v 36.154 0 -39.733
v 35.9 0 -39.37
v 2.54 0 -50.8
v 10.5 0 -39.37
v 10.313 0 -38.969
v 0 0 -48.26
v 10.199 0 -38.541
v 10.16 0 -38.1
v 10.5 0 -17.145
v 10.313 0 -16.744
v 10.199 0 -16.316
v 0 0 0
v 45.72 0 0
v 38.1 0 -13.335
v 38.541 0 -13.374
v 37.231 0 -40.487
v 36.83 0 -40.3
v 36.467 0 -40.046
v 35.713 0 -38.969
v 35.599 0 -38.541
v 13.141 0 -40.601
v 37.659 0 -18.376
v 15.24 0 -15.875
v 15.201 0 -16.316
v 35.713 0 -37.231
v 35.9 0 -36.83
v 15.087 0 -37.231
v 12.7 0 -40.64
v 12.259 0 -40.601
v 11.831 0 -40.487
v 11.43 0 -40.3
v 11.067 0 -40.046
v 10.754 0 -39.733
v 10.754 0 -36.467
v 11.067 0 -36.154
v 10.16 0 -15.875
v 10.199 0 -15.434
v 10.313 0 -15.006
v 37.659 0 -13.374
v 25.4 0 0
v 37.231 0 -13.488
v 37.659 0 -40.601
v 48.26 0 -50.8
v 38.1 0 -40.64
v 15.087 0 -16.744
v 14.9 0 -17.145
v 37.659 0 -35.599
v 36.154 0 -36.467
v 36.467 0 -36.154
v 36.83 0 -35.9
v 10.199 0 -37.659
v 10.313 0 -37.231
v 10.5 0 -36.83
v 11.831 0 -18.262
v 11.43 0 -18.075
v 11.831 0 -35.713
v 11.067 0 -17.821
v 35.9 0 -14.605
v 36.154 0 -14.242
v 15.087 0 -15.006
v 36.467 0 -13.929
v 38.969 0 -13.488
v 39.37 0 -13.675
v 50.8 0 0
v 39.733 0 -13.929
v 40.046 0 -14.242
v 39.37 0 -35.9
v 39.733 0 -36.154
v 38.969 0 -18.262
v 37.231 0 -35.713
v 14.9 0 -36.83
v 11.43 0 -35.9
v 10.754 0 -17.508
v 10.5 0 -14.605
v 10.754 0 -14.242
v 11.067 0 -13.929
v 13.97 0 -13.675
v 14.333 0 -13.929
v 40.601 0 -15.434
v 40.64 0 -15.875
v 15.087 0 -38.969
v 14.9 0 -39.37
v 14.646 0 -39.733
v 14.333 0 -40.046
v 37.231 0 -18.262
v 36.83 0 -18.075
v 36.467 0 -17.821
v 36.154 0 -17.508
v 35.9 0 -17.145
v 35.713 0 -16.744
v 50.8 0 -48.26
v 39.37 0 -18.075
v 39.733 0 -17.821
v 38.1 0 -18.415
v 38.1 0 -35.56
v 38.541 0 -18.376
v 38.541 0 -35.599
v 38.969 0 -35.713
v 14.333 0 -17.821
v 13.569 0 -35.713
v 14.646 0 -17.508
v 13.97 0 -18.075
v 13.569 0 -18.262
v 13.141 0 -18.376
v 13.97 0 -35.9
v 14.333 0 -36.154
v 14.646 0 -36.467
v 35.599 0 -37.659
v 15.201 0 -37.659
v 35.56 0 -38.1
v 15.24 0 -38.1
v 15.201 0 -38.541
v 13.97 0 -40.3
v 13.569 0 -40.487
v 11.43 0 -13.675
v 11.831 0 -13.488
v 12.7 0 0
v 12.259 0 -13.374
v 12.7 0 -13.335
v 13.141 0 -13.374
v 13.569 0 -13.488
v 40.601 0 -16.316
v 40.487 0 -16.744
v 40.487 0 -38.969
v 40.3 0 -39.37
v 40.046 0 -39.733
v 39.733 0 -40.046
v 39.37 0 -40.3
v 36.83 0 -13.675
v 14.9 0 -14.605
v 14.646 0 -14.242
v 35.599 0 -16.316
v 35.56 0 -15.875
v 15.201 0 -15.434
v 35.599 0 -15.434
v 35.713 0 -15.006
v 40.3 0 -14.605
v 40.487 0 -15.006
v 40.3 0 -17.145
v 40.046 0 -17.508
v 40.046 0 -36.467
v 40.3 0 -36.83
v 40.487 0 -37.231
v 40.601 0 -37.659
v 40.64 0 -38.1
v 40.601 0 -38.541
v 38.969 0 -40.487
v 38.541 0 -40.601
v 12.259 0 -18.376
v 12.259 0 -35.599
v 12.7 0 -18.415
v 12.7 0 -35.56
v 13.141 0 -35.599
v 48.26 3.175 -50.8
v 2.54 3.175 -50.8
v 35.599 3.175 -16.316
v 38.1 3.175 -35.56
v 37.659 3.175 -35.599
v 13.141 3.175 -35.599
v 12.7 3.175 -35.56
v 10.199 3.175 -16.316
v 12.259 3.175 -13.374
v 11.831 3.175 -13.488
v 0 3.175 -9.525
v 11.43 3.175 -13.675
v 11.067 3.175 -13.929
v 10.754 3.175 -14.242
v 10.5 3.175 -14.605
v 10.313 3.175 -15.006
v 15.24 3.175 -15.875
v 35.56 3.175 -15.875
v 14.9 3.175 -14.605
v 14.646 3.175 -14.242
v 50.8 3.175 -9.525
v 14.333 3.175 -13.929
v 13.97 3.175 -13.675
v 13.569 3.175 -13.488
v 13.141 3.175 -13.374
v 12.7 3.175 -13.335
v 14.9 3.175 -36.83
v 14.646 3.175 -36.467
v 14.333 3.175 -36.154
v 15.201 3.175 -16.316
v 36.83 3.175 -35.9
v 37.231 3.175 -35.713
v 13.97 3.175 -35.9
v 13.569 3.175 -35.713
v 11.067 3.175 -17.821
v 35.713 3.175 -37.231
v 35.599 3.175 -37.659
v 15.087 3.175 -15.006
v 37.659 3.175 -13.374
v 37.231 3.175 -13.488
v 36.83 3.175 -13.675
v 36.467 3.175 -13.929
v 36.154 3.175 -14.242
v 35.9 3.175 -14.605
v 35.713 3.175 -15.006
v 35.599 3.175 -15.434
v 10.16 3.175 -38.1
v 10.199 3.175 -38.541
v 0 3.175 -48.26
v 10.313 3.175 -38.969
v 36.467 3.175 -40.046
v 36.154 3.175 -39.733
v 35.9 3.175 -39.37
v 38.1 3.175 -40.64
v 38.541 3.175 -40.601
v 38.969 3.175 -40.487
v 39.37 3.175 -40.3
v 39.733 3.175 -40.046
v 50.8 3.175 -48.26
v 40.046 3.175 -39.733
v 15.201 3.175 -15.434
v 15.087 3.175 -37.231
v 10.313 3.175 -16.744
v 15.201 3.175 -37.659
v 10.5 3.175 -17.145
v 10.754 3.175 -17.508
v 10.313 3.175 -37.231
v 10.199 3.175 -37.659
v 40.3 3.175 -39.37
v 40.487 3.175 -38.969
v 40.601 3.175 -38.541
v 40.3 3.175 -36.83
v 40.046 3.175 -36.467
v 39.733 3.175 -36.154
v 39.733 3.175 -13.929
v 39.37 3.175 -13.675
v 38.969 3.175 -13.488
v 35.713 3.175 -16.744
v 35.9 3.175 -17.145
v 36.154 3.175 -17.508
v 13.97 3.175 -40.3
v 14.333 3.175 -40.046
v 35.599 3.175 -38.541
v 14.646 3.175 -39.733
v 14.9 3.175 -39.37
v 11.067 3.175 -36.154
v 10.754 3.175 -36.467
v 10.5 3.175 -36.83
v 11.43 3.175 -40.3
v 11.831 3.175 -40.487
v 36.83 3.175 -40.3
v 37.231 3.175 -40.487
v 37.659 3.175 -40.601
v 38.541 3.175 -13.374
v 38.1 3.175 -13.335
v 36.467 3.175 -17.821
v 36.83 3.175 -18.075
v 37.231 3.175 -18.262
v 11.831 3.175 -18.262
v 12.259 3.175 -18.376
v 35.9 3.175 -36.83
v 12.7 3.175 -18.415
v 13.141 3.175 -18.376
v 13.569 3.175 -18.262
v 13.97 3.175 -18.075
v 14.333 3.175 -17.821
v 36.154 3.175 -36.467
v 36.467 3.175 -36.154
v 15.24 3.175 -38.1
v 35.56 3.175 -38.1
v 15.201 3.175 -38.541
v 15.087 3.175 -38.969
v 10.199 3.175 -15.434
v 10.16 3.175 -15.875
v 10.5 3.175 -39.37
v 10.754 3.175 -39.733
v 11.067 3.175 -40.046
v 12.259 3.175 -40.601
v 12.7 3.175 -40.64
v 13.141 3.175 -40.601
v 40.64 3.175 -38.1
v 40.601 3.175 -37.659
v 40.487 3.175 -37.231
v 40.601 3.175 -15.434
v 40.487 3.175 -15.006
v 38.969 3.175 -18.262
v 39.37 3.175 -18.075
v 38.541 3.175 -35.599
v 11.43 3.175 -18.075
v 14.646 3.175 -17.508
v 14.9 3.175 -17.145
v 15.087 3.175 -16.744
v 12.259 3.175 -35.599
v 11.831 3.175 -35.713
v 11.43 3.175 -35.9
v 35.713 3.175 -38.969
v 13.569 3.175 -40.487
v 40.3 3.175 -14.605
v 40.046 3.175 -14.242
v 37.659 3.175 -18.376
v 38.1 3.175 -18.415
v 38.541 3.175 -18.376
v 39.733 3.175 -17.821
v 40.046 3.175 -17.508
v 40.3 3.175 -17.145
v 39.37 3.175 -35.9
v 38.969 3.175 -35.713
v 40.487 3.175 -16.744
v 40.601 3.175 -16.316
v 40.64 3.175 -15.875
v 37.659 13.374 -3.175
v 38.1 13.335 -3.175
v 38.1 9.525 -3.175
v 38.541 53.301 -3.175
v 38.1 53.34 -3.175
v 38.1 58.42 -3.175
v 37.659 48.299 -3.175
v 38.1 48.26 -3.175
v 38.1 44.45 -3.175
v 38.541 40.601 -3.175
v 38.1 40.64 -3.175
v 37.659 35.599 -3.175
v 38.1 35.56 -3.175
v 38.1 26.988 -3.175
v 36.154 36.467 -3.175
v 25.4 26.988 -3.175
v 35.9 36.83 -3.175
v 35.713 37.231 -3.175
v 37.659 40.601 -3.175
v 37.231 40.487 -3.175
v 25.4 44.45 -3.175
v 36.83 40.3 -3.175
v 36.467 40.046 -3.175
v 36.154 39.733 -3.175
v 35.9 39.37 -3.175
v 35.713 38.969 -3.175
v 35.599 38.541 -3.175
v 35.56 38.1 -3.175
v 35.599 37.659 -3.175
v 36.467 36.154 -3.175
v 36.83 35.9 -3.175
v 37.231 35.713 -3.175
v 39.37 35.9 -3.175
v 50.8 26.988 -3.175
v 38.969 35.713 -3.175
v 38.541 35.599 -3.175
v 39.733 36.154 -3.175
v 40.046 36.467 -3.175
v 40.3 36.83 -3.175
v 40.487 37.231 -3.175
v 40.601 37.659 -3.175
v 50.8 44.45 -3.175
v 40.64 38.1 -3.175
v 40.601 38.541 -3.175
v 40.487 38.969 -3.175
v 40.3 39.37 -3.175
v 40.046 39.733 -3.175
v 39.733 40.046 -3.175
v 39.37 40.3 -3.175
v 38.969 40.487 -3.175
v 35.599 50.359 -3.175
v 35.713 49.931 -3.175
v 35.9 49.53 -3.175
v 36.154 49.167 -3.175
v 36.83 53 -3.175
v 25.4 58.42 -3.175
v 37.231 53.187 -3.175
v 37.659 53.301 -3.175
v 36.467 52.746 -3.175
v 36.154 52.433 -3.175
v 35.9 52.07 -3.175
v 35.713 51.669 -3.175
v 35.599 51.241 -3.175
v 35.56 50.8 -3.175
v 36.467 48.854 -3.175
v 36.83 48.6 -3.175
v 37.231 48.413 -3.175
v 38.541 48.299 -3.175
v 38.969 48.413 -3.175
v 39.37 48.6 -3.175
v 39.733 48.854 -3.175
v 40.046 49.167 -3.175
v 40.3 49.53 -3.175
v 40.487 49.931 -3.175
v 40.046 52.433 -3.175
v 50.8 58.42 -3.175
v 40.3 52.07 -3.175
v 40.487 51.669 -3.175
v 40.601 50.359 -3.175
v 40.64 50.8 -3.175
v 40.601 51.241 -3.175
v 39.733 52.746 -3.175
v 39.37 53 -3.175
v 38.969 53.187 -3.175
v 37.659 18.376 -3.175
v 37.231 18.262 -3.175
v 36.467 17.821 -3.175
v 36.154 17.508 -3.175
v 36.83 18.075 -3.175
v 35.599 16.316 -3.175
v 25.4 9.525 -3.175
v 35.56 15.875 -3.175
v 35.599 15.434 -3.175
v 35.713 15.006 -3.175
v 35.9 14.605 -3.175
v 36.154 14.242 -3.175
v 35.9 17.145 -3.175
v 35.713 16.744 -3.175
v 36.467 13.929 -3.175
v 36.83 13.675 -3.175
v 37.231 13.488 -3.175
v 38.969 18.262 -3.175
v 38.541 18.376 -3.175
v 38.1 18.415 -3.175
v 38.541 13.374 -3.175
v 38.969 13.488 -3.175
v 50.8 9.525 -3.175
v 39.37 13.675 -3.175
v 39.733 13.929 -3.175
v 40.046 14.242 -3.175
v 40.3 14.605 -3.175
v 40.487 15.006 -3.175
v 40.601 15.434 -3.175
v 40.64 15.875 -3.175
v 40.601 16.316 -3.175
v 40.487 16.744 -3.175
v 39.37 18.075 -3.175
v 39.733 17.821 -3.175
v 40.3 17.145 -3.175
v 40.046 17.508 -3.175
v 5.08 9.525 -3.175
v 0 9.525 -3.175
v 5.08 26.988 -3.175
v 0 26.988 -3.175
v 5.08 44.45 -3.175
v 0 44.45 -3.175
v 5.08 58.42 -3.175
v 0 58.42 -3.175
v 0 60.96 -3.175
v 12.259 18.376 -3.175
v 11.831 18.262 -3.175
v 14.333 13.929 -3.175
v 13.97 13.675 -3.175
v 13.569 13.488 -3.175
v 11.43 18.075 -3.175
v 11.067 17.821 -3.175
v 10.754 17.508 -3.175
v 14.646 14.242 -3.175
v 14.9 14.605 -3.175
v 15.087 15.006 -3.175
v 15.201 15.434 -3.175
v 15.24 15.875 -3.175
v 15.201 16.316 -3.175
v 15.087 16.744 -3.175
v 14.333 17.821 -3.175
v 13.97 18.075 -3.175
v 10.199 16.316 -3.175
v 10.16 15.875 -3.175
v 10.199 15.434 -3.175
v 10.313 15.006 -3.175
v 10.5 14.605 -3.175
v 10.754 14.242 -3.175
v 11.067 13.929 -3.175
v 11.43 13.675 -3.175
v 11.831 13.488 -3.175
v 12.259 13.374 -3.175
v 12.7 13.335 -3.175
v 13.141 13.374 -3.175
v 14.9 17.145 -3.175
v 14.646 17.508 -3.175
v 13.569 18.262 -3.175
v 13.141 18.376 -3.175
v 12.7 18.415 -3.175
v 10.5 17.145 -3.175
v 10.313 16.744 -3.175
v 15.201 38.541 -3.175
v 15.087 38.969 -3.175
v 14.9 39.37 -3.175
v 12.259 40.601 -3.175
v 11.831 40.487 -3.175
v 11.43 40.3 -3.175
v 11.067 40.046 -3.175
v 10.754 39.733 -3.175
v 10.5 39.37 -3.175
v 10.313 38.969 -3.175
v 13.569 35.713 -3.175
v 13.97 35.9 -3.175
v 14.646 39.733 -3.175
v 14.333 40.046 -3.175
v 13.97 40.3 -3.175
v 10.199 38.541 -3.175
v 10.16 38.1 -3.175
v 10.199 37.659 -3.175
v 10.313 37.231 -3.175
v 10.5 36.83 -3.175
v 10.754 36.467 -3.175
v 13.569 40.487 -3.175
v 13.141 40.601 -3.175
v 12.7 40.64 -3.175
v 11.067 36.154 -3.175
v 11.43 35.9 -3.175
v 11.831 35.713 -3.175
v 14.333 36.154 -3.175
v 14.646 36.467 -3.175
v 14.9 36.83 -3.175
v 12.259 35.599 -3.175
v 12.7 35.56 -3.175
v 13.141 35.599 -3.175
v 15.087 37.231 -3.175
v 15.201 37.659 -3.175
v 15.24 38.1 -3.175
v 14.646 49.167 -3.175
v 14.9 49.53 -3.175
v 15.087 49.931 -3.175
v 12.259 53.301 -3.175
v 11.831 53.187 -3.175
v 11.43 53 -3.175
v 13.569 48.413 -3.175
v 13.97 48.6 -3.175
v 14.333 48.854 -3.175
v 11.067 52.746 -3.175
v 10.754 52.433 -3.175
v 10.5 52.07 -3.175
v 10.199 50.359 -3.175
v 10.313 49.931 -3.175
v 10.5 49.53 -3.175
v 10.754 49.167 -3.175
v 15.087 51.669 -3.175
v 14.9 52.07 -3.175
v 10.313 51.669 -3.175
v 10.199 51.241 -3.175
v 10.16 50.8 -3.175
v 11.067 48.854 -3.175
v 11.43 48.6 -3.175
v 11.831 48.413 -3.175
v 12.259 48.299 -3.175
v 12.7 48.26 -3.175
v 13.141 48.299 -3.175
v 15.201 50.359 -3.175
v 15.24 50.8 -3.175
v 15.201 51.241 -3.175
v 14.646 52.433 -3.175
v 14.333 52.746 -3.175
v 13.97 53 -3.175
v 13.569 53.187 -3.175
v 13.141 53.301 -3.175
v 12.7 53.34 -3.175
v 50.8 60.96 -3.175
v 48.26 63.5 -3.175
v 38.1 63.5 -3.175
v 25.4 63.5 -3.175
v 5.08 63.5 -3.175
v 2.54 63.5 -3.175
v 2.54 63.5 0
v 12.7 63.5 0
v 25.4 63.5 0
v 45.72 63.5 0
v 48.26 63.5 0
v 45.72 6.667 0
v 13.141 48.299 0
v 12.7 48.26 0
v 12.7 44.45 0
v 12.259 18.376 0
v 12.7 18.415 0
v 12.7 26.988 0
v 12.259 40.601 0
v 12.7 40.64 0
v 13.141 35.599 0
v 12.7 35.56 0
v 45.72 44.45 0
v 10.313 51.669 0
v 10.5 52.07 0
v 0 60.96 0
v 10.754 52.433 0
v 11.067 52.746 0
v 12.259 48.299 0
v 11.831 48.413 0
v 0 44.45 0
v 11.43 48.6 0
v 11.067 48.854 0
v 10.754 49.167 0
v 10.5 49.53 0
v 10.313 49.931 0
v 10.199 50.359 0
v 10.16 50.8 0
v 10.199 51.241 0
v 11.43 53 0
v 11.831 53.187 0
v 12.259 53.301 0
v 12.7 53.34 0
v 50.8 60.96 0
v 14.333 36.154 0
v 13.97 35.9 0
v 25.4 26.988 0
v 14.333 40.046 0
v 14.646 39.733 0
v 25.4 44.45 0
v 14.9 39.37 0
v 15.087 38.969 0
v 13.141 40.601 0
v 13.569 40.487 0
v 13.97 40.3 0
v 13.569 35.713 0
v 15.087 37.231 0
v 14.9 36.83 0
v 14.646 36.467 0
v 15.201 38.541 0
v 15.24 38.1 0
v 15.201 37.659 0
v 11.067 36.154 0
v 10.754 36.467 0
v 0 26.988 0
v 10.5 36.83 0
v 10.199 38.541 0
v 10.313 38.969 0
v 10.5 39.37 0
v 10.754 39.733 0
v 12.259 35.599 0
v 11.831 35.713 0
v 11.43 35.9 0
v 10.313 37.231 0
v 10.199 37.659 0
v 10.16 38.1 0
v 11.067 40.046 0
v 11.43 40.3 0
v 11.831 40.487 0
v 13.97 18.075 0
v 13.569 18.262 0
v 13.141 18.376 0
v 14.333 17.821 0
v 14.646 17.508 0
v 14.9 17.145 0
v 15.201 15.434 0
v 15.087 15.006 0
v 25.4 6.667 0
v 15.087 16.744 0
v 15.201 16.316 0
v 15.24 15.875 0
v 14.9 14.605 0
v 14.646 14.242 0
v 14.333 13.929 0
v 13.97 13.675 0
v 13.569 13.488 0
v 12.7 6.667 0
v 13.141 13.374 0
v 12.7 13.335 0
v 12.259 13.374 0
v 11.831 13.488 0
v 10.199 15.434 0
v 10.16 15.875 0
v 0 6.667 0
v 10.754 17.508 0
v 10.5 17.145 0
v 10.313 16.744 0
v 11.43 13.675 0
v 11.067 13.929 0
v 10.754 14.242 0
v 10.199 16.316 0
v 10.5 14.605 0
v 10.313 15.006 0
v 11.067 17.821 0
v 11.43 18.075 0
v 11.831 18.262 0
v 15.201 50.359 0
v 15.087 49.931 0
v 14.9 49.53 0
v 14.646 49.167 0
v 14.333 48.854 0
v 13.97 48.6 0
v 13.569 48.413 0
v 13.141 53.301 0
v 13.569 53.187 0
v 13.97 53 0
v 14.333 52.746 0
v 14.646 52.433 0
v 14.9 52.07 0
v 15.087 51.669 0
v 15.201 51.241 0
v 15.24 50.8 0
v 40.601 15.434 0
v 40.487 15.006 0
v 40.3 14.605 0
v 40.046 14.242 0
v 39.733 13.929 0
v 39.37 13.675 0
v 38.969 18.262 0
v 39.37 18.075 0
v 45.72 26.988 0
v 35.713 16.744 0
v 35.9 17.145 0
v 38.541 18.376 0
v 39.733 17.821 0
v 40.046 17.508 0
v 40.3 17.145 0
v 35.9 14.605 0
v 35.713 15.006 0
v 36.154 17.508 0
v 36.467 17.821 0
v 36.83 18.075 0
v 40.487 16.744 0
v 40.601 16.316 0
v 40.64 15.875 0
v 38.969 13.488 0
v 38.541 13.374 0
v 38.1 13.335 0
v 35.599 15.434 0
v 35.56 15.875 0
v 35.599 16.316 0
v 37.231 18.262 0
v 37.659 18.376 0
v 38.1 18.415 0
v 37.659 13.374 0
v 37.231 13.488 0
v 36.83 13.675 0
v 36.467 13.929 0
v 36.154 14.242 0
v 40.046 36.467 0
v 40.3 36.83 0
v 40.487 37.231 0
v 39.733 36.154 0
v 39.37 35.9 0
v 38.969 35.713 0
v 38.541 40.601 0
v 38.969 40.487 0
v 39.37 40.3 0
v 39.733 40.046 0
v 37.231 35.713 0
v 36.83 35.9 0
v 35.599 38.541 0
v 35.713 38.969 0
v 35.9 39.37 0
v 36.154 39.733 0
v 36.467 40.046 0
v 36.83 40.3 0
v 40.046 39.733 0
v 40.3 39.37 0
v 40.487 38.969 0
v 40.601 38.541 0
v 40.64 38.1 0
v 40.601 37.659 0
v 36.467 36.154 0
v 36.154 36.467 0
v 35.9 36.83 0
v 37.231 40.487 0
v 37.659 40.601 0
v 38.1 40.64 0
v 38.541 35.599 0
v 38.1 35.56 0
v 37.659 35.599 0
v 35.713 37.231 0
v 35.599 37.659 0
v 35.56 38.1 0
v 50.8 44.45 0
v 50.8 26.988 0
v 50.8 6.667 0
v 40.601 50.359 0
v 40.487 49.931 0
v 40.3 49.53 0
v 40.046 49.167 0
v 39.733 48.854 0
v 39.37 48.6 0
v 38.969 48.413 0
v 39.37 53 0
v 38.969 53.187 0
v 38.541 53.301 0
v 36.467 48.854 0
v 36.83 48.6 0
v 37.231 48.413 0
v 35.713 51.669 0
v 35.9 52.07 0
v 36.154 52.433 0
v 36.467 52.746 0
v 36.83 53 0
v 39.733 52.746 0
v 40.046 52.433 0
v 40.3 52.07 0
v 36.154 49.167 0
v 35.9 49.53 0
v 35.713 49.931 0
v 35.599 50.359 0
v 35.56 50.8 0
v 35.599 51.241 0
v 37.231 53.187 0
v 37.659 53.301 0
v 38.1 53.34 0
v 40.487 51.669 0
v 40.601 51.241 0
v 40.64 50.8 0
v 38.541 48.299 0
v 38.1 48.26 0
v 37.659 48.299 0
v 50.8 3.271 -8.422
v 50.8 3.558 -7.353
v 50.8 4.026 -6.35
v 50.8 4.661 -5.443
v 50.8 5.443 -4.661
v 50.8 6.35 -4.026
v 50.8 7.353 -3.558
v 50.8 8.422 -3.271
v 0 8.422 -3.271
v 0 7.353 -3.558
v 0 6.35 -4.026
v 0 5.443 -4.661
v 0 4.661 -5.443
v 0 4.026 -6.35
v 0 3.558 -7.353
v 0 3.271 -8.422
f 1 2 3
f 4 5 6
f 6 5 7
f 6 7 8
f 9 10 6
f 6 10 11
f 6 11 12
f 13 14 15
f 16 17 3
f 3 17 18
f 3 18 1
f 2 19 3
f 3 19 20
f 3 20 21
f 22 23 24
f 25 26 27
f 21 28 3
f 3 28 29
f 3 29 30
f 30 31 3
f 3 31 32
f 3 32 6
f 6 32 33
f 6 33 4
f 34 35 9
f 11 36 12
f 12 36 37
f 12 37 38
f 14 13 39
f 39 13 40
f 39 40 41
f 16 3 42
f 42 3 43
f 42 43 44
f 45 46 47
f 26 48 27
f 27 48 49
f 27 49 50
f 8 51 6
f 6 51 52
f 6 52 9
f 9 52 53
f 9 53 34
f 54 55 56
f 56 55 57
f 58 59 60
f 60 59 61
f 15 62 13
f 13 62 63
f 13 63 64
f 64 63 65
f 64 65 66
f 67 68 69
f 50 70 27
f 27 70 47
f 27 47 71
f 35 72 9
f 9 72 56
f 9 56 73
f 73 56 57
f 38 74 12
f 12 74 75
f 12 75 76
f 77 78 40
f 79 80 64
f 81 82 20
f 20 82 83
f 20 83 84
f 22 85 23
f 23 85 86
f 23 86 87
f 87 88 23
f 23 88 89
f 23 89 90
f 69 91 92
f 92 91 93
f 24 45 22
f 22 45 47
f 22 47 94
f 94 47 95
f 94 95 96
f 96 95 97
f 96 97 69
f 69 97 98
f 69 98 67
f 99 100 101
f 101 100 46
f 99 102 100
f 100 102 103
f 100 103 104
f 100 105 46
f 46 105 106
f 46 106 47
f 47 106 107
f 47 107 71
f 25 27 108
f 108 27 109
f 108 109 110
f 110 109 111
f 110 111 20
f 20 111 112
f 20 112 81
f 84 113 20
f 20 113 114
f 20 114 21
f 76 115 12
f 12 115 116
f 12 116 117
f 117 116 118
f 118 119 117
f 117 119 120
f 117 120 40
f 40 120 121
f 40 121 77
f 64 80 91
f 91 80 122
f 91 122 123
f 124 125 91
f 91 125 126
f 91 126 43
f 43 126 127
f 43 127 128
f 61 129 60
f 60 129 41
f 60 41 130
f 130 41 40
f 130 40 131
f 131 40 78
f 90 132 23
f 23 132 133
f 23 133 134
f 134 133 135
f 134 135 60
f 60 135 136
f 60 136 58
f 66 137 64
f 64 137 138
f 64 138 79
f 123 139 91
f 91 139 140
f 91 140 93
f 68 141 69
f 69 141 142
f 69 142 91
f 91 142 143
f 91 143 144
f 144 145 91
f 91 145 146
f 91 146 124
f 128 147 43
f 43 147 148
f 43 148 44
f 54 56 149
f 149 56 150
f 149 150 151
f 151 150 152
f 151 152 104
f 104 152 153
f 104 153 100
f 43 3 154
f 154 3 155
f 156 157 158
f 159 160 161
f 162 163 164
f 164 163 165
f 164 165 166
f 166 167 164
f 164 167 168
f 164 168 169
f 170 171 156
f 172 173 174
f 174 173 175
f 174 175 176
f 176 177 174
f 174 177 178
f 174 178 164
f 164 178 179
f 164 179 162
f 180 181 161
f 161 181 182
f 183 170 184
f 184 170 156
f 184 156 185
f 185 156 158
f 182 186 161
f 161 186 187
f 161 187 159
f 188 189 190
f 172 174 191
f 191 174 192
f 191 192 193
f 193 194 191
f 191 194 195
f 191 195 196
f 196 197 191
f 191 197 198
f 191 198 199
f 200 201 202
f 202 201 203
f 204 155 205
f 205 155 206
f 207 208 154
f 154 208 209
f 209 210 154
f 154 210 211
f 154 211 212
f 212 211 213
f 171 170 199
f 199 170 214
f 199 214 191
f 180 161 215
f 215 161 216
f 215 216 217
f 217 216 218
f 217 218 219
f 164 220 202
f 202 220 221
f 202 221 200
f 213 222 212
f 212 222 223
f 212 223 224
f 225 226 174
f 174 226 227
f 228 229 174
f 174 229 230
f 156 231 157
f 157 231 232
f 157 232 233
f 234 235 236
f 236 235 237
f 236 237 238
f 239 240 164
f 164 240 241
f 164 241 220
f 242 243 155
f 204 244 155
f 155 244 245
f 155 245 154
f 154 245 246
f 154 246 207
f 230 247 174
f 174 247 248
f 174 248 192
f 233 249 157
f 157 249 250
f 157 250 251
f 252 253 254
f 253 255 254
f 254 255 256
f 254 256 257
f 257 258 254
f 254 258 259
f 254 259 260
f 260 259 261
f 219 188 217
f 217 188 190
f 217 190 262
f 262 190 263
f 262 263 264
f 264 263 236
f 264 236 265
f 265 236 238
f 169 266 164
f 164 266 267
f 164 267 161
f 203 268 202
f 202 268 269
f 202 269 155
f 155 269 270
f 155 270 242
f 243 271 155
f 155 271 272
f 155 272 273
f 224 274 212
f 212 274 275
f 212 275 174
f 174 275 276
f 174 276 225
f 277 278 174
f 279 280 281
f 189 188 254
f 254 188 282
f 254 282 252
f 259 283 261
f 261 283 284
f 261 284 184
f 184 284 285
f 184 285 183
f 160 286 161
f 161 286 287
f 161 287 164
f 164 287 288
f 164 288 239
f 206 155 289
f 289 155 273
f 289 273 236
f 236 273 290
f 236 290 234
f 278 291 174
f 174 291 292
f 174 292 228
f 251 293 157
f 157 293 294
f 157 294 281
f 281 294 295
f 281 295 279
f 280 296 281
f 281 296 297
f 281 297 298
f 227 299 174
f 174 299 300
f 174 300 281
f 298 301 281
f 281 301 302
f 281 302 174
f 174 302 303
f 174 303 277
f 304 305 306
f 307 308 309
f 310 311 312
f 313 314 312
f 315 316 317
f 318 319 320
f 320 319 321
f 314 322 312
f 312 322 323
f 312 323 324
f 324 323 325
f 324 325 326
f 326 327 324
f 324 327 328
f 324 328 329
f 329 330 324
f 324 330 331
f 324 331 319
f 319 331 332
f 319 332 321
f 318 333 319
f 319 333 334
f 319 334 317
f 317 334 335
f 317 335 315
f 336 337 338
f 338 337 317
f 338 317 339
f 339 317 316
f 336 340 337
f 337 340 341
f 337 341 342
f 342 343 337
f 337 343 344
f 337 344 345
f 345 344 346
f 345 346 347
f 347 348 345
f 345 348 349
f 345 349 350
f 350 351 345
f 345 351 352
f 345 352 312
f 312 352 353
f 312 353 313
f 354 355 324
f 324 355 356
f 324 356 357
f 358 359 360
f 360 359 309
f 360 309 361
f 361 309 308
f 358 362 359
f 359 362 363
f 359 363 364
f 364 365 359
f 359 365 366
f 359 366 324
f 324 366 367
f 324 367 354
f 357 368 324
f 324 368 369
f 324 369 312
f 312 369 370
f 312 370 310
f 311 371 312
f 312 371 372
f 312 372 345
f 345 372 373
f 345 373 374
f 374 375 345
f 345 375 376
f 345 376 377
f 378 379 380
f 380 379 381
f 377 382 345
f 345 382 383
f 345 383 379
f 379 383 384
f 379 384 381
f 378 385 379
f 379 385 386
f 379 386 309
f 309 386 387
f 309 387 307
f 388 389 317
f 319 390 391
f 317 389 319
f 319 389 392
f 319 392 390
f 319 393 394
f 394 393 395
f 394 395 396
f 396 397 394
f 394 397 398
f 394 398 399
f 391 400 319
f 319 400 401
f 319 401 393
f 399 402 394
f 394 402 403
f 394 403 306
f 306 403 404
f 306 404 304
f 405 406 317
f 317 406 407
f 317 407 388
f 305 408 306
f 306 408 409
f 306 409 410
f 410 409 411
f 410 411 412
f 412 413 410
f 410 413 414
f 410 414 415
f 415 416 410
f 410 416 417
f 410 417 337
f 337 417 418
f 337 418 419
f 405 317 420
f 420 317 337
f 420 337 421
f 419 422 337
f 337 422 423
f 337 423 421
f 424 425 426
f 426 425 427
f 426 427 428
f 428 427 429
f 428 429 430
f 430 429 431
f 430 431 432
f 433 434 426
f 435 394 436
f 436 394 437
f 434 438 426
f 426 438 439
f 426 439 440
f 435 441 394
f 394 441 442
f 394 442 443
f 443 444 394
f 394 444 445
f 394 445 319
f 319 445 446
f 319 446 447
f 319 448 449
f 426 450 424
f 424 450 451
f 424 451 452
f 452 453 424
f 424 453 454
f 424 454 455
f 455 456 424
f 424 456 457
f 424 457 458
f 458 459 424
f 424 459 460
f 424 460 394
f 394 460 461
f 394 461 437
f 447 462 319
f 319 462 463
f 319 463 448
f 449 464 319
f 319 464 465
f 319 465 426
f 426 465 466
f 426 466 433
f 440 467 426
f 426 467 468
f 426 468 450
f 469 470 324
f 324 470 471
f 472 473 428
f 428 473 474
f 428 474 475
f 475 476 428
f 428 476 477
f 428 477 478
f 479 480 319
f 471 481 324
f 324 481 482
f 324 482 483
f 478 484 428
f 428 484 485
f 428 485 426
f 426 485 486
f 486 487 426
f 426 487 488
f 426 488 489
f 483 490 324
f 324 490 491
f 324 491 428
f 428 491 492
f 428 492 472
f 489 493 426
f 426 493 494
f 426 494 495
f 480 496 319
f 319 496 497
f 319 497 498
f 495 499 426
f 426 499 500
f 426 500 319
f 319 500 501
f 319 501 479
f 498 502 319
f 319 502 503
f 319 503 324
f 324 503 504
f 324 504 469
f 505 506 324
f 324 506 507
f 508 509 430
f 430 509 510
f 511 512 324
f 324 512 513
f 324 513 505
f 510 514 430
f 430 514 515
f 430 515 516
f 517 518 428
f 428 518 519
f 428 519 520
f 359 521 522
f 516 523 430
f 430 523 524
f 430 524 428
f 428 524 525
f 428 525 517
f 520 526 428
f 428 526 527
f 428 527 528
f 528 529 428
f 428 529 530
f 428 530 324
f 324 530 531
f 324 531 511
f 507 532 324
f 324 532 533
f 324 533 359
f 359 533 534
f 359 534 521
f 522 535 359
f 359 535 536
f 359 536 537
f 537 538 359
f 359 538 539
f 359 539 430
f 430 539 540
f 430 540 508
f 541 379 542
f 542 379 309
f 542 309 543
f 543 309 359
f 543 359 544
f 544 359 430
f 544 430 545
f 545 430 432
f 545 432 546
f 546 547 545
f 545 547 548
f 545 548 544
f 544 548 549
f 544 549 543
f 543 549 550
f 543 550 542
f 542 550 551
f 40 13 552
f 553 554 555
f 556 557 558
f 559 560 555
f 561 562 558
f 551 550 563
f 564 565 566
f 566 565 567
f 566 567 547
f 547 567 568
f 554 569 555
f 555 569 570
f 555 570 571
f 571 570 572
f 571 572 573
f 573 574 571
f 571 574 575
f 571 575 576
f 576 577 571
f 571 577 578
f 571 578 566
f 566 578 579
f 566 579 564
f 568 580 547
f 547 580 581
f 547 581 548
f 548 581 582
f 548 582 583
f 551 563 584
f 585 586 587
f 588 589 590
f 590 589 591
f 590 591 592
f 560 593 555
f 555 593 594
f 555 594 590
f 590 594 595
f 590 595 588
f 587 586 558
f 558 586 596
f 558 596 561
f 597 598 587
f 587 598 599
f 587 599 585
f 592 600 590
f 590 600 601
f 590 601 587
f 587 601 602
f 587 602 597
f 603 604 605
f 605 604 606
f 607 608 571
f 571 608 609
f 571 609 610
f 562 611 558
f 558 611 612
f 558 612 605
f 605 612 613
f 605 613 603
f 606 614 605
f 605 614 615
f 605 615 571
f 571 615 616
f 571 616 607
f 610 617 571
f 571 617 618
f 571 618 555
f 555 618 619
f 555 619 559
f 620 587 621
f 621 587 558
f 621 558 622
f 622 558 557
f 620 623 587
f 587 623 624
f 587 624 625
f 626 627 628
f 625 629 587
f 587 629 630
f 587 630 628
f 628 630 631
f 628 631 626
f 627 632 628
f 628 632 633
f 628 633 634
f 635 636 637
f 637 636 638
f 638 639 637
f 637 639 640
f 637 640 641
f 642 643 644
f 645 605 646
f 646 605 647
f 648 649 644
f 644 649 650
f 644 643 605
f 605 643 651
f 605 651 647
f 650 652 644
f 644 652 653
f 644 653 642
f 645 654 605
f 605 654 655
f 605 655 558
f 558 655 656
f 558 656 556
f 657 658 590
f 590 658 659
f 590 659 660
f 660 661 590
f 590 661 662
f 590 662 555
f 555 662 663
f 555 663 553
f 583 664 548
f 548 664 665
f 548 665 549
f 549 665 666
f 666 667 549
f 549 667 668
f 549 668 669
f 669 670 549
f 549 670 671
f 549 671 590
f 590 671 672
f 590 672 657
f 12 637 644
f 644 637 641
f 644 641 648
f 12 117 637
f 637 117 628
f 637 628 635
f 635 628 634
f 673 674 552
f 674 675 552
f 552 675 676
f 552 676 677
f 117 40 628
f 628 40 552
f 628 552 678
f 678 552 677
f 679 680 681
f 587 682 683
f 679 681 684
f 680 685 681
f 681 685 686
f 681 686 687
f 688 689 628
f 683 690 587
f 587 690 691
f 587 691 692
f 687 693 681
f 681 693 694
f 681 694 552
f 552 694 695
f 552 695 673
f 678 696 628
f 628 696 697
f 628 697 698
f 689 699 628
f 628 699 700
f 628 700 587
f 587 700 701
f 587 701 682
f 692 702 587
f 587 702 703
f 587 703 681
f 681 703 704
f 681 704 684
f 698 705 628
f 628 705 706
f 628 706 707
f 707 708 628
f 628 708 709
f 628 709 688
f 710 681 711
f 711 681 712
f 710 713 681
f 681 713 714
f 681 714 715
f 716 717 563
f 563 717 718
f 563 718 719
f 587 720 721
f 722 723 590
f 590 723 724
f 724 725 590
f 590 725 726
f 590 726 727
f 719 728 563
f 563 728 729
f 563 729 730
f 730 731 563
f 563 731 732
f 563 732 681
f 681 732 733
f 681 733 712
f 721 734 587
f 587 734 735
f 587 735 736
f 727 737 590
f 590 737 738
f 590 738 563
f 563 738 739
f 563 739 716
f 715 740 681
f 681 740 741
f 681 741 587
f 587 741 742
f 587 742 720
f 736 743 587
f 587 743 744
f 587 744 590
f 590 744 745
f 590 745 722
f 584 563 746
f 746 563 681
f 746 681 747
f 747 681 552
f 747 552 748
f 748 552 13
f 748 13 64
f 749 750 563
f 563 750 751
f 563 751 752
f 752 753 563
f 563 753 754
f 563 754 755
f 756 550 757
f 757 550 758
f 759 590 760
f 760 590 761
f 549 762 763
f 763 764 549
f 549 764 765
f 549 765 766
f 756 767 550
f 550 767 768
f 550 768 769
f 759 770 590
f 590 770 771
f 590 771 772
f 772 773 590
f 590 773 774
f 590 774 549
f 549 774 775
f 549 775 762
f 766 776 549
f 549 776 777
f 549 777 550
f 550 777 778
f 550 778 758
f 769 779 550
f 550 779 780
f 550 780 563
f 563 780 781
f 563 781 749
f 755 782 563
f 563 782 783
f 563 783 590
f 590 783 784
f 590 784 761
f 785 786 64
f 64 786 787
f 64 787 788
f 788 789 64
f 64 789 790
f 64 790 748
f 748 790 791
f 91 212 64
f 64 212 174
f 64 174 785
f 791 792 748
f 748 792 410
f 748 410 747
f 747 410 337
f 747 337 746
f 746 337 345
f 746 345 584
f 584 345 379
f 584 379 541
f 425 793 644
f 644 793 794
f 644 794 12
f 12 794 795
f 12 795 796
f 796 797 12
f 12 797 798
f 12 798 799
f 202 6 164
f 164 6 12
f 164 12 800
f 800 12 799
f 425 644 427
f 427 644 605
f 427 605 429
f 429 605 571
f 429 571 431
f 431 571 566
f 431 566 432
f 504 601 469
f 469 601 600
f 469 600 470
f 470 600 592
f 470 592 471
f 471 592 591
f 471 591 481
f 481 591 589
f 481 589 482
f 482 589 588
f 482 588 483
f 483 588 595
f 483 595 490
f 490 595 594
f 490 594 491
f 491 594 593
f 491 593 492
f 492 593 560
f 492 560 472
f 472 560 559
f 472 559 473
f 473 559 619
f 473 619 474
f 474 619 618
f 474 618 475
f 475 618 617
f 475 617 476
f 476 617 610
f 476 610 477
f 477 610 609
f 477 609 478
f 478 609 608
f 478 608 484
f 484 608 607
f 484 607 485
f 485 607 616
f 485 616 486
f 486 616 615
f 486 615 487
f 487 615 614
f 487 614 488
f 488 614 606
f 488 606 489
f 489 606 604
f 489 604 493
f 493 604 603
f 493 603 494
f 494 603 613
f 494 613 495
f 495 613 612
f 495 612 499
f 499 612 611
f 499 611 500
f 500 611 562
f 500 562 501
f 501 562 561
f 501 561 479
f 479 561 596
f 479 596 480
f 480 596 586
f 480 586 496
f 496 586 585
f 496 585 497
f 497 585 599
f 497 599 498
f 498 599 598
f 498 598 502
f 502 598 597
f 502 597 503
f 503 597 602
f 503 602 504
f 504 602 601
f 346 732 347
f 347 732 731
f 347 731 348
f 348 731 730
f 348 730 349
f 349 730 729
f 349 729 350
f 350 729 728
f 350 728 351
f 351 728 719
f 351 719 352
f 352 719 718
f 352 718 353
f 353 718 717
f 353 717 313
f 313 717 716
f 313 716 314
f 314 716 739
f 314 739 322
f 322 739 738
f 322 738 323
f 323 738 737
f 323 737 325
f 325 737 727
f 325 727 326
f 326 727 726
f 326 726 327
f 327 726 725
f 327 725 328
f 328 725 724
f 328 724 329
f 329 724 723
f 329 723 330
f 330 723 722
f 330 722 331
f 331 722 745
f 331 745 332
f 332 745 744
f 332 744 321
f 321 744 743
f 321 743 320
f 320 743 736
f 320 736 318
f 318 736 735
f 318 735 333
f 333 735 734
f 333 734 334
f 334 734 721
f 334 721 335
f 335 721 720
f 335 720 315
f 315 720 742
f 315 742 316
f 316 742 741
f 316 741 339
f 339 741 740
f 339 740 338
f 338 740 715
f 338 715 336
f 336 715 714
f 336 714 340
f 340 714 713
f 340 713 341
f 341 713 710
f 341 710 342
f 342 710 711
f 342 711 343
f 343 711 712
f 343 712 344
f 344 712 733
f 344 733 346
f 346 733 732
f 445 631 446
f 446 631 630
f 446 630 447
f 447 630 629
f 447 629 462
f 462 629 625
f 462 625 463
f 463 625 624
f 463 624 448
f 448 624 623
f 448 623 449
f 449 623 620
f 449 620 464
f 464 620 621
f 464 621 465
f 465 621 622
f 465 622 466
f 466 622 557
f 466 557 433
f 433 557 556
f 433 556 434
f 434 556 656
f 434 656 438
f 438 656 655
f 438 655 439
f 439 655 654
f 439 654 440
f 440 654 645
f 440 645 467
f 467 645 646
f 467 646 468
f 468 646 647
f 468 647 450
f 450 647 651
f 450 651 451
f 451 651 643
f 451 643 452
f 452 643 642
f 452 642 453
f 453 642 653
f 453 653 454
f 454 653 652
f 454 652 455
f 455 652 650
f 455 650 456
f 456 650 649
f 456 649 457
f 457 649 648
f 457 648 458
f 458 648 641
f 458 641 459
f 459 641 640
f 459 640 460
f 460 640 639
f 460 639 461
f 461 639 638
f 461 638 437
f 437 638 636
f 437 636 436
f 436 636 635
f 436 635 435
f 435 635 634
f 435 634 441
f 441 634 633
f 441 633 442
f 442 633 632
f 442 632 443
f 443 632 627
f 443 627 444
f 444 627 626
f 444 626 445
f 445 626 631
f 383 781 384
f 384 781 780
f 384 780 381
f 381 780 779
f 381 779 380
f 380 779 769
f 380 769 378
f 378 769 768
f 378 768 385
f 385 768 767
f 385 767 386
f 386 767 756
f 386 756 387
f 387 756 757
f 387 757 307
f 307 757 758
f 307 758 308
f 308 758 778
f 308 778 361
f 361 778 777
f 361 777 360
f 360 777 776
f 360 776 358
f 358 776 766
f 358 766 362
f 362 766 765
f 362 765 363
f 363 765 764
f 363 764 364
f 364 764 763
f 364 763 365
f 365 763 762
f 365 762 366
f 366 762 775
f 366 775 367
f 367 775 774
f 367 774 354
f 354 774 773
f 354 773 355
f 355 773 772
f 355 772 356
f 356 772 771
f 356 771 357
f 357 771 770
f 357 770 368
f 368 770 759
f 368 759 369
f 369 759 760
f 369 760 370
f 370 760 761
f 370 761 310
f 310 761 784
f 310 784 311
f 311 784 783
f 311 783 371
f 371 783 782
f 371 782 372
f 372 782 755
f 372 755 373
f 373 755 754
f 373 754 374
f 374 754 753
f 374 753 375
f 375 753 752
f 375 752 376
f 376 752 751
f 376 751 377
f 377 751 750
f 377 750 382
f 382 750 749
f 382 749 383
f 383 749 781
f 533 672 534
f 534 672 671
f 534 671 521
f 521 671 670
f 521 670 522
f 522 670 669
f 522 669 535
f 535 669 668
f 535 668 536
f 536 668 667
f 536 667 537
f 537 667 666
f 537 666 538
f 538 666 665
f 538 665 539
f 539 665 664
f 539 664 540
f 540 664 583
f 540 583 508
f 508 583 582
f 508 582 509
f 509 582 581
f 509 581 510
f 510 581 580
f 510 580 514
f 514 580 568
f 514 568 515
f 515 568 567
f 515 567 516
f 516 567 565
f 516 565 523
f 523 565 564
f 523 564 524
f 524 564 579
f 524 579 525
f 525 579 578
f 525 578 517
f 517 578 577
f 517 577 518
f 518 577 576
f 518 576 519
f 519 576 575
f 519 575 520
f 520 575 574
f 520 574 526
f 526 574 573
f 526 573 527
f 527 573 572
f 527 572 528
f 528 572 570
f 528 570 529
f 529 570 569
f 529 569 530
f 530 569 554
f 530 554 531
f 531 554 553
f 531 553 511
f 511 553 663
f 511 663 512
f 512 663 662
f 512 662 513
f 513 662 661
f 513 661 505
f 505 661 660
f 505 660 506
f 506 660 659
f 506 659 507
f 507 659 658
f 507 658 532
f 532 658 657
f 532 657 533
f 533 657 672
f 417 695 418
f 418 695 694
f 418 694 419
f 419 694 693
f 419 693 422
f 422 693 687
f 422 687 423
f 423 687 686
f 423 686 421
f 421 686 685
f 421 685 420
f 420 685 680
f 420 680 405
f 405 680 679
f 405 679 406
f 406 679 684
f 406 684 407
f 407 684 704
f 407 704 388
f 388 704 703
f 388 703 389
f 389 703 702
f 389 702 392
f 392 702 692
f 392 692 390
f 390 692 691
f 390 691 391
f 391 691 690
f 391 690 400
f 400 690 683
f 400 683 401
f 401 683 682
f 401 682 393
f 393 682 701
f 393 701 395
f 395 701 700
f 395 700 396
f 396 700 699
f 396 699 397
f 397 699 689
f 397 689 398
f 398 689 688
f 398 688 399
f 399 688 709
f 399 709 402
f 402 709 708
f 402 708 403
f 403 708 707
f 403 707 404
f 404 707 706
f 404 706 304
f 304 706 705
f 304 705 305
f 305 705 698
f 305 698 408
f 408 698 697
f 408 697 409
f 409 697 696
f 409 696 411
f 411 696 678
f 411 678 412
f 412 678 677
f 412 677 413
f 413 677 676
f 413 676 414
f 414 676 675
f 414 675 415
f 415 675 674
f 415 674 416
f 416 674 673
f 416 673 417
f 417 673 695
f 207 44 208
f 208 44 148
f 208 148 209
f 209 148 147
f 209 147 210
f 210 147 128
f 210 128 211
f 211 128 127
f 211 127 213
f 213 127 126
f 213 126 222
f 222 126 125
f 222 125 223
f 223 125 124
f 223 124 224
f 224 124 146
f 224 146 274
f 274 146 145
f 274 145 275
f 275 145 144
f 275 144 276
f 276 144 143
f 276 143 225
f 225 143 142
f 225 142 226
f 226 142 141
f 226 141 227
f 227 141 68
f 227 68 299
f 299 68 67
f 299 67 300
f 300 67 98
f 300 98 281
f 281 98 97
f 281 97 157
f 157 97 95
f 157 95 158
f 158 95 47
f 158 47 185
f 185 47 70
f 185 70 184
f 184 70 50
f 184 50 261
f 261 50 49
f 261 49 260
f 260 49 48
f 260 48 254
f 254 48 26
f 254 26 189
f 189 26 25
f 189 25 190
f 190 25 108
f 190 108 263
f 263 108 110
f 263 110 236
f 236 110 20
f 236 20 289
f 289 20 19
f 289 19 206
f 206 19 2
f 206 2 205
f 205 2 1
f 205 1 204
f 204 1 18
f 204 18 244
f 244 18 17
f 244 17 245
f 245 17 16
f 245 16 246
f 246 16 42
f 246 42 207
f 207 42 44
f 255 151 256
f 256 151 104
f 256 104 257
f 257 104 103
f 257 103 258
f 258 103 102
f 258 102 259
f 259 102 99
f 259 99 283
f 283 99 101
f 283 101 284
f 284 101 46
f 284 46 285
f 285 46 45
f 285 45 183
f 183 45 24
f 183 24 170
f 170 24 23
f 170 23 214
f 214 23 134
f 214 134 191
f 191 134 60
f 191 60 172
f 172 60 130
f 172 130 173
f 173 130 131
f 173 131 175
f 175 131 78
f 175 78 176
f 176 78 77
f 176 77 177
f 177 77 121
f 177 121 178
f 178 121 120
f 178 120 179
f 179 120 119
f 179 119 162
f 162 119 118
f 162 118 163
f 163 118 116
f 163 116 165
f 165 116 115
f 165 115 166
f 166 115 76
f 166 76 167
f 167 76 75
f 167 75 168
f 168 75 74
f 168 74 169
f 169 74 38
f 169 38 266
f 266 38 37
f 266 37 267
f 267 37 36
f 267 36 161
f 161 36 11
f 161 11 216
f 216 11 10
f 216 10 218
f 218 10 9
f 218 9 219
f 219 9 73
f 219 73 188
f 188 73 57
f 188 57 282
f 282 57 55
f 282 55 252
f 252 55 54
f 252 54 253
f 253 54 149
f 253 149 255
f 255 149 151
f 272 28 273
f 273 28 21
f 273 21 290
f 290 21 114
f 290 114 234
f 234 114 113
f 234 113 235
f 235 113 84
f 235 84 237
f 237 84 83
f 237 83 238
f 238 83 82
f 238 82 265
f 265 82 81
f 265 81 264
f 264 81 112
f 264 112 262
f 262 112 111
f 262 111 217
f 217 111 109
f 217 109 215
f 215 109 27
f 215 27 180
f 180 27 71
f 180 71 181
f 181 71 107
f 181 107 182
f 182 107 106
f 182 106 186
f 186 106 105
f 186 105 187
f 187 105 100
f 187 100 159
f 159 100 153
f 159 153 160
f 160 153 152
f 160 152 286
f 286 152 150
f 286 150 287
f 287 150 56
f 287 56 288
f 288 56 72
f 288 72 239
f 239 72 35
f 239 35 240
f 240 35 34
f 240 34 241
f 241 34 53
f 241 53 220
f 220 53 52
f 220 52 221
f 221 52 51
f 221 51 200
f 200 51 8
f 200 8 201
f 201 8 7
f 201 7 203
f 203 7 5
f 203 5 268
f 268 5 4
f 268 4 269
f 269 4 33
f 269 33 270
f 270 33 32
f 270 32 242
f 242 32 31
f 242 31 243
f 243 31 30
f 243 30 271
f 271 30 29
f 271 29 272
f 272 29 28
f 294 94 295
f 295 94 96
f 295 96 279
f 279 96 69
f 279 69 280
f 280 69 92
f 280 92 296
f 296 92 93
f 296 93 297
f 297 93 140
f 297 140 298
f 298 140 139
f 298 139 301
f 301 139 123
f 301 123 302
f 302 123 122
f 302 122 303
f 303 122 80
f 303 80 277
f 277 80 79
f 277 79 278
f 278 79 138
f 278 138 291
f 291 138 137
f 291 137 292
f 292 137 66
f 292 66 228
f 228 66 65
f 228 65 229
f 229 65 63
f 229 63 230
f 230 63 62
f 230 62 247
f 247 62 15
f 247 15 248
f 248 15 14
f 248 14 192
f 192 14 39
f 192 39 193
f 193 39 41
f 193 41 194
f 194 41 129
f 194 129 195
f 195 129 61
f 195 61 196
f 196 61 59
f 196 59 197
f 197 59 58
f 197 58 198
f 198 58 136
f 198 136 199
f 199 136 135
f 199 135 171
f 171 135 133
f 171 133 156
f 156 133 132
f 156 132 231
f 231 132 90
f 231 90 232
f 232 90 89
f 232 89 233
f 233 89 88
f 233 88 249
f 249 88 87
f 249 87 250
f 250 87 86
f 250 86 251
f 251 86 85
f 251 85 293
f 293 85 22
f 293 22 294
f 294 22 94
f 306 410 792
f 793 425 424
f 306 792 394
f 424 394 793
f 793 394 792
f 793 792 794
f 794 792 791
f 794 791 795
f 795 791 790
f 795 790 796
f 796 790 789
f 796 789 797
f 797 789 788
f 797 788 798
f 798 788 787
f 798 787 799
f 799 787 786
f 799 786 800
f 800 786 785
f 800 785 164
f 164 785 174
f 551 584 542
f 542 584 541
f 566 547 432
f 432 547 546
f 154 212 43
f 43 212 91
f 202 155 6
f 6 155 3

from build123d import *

# Parameters (mm, degrees)
BOSS_EXTRUDE1_DEPTH = 50.8
SKETCH2_R           = 2.54
CUT_EXTRUDE1_DEPTH  = 96.882897328
SKETCH3_R           = 2.54
CUT_EXTRUDE2_DEPTH  = 96.882897328
FILLET1_R           = 6.35
CHAMFER1_SIZE       = 2.54


with BuildPart() as part:
    # Sketch1 → Boss-Extrude1 (new body)
    with BuildSketch(Plane(origin=(0, 0, 0), x_dir=(0, 0, -1), z_dir=(1, 0, 0))):
        Polygon((0, 0), (0, 63.5), (3.175, 63.5), (3.175, 3.175), (50.8, 3.175), (50.8, 0), align=None)
    extrude(amount=BOSS_EXTRUDE1_DEPTH)

    # Sketch2 → Cut-Extrude1 (cut, through all)
    with BuildSketch(Plane.XY):
        with Locations((12.7, 38.1)):
            Circle(SKETCH2_R)
        with Locations((12.7, 15.875)):
            Circle(SKETCH2_R)
        with Locations((12.7, 50.8)):
            Circle(SKETCH2_R)
        with Locations(Location((38.1, 50.8, 0), (0, 0, 270))):
            Circle(SKETCH2_R)
        with Locations(Location((38.1, 15.875, 0), (0, 0, 270))):
            Circle(SKETCH2_R)
        with Locations(Location((38.1, 38.1, 0), (0, 0, 270))):
            Circle(SKETCH2_R)
    extrude(amount=-CUT_EXTRUDE1_DEPTH, mode=Mode.SUBTRACT)

    # Sketch3 → Cut-Extrude2 (cut, through all)
    with BuildSketch(Plane.XZ):
        with Locations(Location((38.1, -38.1, 0), (0, 0, 270))):
            Circle(SKETCH3_R)
        with Locations(Location((38.1, -15.875, 0), (0, 0, 270))):
            Circle(SKETCH3_R)
        with Locations(Location((12.7, -38.1, 0), (0, 0, 270))):
            Circle(SKETCH3_R)
        with Locations(Location((12.7, -15.875, 0), (0, 0, 270))):
            Circle(SKETCH3_R)
    extrude(amount=-CUT_EXTRUDE2_DEPTH, mode=Mode.SUBTRACT)

    # Fillet1
    fillet1_edges = [part.edges().sort_by_distance(p)[0] for p in [
        (25.4, 3.175, -3.175),
    ]]
    fillet(fillet1_edges, radius=FILLET1_R)

    # Chamfer1
    chamfer1_edges = [part.edges().sort_by_distance(p)[0] for p in [
        (50.8, 63.5, -1.5875),
        (0, 63.5, -1.5875),
        (0, 1.5875, -50.8),
        (50.8, 1.5875, -50.8),
    ]]
    chamfer(chamfer1_edges, length=CHAMFER1_SIZE)


solid = part.part
